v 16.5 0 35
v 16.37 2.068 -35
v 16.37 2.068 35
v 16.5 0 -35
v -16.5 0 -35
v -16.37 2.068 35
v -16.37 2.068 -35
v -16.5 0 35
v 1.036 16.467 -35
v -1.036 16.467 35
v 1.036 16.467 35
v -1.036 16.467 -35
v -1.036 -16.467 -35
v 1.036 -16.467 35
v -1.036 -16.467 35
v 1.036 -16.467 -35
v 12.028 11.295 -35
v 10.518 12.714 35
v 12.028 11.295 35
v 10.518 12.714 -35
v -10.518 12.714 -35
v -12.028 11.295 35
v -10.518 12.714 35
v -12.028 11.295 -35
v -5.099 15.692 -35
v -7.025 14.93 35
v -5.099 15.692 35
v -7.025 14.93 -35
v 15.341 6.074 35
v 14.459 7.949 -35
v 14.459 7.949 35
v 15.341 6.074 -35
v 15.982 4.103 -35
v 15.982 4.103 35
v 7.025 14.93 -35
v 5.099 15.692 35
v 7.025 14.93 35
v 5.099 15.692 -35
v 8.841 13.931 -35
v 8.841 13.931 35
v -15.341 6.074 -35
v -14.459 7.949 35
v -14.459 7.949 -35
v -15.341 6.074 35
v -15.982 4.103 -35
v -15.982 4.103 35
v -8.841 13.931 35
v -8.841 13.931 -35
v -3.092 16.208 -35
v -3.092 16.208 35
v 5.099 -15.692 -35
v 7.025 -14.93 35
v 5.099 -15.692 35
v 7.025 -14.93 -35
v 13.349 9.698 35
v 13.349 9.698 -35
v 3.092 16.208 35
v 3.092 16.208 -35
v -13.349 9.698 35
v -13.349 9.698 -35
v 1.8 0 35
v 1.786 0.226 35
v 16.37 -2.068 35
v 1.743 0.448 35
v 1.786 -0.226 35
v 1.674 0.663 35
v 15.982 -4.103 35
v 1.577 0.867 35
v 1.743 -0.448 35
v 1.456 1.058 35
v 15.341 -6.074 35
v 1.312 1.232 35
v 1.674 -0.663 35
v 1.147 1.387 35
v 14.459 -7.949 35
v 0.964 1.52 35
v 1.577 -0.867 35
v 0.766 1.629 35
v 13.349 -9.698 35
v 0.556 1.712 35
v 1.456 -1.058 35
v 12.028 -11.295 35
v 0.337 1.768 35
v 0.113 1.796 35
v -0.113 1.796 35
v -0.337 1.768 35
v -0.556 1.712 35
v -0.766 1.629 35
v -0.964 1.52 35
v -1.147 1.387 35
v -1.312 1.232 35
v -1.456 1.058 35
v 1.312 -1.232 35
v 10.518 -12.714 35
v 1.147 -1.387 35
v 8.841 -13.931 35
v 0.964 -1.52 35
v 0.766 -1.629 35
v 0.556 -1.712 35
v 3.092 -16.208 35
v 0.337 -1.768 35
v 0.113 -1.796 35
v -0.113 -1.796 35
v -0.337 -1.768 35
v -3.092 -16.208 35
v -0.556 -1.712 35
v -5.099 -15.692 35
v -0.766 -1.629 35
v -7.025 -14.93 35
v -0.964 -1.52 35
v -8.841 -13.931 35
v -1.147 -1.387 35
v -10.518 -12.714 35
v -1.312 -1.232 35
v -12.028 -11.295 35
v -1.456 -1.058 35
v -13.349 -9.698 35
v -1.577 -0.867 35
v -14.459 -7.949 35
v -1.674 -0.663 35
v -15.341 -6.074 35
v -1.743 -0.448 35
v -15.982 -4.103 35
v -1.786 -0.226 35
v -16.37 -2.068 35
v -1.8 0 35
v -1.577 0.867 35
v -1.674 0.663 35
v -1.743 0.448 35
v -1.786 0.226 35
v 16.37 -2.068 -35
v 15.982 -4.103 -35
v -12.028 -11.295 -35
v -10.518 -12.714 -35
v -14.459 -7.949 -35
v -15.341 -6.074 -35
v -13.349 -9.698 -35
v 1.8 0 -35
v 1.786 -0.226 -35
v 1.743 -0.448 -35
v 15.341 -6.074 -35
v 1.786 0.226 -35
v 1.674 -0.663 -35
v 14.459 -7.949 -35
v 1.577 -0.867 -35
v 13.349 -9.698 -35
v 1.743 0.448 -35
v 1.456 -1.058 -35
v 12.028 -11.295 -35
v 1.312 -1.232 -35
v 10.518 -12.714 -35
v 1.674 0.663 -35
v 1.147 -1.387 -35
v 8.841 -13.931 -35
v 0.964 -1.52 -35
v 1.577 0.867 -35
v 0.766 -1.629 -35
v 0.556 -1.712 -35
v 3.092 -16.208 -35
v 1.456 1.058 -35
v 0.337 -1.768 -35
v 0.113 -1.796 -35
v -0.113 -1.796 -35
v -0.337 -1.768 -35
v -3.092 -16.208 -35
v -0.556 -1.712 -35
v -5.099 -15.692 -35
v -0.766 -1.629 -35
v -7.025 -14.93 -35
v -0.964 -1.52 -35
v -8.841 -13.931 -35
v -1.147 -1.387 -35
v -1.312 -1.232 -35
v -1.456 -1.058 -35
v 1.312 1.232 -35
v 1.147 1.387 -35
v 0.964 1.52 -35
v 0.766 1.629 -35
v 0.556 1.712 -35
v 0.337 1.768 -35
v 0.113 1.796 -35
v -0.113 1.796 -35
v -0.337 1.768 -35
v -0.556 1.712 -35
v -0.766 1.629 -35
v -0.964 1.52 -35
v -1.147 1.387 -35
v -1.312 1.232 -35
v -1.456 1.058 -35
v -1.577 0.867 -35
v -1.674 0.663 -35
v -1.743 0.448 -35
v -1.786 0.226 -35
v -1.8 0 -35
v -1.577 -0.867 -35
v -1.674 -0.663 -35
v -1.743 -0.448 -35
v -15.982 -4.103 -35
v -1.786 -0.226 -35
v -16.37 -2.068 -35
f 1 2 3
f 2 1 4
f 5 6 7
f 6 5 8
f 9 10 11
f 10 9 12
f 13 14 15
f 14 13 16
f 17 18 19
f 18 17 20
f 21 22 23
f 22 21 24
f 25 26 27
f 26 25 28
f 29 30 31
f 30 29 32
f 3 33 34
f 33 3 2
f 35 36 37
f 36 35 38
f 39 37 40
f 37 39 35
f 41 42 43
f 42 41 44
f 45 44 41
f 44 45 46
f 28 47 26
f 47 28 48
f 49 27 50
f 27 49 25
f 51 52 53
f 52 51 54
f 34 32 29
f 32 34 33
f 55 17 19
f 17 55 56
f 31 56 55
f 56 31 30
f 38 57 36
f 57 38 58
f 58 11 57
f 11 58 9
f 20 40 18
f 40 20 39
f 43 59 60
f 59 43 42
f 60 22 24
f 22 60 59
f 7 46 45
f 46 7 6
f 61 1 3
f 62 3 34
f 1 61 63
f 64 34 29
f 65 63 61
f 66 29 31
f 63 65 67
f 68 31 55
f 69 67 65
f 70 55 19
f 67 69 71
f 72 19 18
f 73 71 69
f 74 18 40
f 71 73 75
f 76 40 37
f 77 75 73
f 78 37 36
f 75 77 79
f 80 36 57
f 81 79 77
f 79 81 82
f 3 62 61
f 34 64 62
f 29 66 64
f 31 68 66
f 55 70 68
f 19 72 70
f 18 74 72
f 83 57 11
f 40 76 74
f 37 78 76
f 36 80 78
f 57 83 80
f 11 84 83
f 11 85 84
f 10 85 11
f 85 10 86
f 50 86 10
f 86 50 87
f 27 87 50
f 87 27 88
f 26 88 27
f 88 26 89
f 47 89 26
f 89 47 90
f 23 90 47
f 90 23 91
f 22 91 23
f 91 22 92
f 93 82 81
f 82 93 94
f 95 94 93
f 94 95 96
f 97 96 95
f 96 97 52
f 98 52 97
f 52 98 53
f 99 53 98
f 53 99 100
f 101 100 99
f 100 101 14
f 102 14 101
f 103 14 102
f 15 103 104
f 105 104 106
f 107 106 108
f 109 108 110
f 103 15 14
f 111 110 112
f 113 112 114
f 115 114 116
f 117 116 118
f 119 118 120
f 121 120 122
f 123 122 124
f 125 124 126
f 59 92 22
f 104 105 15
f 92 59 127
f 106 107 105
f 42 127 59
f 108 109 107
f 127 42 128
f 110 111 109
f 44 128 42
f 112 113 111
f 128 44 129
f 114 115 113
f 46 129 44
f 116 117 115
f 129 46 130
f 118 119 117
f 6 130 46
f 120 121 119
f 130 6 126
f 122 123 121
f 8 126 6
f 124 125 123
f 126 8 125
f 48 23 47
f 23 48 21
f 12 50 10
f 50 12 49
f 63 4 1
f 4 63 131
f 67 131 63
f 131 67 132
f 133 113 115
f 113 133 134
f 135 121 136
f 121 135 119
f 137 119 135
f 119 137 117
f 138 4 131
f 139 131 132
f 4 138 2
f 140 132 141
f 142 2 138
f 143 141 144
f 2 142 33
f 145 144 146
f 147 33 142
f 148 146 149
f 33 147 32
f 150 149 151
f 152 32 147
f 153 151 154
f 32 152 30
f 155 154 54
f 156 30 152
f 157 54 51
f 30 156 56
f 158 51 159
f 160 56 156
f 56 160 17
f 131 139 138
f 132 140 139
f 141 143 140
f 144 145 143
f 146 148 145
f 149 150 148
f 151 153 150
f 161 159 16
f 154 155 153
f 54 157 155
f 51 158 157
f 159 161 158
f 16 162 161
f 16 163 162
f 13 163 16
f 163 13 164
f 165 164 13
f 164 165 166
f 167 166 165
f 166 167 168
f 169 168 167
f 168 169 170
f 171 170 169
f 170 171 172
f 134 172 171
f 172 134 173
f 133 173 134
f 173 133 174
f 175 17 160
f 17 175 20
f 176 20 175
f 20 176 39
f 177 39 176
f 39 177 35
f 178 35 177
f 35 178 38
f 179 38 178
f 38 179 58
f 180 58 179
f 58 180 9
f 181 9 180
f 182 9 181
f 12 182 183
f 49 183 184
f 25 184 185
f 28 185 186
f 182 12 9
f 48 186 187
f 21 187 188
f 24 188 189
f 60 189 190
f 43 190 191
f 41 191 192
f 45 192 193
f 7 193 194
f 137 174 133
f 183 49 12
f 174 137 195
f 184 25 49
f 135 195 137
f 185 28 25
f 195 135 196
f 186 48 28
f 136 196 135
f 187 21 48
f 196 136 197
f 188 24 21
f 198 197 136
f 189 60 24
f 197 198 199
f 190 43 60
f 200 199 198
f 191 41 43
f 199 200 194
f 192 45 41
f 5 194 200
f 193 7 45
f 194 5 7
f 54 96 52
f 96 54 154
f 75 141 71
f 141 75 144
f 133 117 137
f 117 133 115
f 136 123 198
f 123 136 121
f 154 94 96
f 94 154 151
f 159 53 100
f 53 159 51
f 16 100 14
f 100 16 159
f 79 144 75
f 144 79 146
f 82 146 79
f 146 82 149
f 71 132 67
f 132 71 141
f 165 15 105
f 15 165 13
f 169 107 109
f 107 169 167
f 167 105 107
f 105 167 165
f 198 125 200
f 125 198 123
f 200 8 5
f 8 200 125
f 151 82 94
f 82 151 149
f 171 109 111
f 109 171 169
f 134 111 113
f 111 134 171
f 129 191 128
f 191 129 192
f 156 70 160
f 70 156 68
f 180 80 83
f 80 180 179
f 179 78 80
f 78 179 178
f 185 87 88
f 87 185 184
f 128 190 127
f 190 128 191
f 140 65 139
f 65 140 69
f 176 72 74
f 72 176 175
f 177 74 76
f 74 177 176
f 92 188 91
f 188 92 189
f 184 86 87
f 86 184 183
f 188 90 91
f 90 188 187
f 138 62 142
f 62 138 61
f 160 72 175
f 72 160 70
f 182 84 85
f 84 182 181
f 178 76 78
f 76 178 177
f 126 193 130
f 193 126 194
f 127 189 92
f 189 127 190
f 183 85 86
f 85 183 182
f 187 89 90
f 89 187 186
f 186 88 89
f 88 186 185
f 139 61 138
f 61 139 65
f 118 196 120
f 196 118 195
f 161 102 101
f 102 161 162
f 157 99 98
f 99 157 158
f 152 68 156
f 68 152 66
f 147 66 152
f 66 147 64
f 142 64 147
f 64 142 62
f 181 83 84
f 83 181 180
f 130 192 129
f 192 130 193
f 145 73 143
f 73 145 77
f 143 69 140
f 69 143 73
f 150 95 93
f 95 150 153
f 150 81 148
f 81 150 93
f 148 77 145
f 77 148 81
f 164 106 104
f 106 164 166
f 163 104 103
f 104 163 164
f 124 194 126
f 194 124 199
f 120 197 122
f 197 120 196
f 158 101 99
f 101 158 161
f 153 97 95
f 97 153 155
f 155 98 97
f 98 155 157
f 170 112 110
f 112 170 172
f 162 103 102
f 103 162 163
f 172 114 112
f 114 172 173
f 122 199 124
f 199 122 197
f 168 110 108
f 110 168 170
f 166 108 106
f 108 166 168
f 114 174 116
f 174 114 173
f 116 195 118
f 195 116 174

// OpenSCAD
$fn = 50;


difference() {
	union() {
		translate(v = [0, 0, -35.0000000000]) {
			cylinder(h = 70, r = 16.5000000000);
		}
	}
	union() {
		translate(v = [0, 0, -100.0000000000]) {
			cylinder(h = 200, r = 1.8000000000);
		}
	}
}
